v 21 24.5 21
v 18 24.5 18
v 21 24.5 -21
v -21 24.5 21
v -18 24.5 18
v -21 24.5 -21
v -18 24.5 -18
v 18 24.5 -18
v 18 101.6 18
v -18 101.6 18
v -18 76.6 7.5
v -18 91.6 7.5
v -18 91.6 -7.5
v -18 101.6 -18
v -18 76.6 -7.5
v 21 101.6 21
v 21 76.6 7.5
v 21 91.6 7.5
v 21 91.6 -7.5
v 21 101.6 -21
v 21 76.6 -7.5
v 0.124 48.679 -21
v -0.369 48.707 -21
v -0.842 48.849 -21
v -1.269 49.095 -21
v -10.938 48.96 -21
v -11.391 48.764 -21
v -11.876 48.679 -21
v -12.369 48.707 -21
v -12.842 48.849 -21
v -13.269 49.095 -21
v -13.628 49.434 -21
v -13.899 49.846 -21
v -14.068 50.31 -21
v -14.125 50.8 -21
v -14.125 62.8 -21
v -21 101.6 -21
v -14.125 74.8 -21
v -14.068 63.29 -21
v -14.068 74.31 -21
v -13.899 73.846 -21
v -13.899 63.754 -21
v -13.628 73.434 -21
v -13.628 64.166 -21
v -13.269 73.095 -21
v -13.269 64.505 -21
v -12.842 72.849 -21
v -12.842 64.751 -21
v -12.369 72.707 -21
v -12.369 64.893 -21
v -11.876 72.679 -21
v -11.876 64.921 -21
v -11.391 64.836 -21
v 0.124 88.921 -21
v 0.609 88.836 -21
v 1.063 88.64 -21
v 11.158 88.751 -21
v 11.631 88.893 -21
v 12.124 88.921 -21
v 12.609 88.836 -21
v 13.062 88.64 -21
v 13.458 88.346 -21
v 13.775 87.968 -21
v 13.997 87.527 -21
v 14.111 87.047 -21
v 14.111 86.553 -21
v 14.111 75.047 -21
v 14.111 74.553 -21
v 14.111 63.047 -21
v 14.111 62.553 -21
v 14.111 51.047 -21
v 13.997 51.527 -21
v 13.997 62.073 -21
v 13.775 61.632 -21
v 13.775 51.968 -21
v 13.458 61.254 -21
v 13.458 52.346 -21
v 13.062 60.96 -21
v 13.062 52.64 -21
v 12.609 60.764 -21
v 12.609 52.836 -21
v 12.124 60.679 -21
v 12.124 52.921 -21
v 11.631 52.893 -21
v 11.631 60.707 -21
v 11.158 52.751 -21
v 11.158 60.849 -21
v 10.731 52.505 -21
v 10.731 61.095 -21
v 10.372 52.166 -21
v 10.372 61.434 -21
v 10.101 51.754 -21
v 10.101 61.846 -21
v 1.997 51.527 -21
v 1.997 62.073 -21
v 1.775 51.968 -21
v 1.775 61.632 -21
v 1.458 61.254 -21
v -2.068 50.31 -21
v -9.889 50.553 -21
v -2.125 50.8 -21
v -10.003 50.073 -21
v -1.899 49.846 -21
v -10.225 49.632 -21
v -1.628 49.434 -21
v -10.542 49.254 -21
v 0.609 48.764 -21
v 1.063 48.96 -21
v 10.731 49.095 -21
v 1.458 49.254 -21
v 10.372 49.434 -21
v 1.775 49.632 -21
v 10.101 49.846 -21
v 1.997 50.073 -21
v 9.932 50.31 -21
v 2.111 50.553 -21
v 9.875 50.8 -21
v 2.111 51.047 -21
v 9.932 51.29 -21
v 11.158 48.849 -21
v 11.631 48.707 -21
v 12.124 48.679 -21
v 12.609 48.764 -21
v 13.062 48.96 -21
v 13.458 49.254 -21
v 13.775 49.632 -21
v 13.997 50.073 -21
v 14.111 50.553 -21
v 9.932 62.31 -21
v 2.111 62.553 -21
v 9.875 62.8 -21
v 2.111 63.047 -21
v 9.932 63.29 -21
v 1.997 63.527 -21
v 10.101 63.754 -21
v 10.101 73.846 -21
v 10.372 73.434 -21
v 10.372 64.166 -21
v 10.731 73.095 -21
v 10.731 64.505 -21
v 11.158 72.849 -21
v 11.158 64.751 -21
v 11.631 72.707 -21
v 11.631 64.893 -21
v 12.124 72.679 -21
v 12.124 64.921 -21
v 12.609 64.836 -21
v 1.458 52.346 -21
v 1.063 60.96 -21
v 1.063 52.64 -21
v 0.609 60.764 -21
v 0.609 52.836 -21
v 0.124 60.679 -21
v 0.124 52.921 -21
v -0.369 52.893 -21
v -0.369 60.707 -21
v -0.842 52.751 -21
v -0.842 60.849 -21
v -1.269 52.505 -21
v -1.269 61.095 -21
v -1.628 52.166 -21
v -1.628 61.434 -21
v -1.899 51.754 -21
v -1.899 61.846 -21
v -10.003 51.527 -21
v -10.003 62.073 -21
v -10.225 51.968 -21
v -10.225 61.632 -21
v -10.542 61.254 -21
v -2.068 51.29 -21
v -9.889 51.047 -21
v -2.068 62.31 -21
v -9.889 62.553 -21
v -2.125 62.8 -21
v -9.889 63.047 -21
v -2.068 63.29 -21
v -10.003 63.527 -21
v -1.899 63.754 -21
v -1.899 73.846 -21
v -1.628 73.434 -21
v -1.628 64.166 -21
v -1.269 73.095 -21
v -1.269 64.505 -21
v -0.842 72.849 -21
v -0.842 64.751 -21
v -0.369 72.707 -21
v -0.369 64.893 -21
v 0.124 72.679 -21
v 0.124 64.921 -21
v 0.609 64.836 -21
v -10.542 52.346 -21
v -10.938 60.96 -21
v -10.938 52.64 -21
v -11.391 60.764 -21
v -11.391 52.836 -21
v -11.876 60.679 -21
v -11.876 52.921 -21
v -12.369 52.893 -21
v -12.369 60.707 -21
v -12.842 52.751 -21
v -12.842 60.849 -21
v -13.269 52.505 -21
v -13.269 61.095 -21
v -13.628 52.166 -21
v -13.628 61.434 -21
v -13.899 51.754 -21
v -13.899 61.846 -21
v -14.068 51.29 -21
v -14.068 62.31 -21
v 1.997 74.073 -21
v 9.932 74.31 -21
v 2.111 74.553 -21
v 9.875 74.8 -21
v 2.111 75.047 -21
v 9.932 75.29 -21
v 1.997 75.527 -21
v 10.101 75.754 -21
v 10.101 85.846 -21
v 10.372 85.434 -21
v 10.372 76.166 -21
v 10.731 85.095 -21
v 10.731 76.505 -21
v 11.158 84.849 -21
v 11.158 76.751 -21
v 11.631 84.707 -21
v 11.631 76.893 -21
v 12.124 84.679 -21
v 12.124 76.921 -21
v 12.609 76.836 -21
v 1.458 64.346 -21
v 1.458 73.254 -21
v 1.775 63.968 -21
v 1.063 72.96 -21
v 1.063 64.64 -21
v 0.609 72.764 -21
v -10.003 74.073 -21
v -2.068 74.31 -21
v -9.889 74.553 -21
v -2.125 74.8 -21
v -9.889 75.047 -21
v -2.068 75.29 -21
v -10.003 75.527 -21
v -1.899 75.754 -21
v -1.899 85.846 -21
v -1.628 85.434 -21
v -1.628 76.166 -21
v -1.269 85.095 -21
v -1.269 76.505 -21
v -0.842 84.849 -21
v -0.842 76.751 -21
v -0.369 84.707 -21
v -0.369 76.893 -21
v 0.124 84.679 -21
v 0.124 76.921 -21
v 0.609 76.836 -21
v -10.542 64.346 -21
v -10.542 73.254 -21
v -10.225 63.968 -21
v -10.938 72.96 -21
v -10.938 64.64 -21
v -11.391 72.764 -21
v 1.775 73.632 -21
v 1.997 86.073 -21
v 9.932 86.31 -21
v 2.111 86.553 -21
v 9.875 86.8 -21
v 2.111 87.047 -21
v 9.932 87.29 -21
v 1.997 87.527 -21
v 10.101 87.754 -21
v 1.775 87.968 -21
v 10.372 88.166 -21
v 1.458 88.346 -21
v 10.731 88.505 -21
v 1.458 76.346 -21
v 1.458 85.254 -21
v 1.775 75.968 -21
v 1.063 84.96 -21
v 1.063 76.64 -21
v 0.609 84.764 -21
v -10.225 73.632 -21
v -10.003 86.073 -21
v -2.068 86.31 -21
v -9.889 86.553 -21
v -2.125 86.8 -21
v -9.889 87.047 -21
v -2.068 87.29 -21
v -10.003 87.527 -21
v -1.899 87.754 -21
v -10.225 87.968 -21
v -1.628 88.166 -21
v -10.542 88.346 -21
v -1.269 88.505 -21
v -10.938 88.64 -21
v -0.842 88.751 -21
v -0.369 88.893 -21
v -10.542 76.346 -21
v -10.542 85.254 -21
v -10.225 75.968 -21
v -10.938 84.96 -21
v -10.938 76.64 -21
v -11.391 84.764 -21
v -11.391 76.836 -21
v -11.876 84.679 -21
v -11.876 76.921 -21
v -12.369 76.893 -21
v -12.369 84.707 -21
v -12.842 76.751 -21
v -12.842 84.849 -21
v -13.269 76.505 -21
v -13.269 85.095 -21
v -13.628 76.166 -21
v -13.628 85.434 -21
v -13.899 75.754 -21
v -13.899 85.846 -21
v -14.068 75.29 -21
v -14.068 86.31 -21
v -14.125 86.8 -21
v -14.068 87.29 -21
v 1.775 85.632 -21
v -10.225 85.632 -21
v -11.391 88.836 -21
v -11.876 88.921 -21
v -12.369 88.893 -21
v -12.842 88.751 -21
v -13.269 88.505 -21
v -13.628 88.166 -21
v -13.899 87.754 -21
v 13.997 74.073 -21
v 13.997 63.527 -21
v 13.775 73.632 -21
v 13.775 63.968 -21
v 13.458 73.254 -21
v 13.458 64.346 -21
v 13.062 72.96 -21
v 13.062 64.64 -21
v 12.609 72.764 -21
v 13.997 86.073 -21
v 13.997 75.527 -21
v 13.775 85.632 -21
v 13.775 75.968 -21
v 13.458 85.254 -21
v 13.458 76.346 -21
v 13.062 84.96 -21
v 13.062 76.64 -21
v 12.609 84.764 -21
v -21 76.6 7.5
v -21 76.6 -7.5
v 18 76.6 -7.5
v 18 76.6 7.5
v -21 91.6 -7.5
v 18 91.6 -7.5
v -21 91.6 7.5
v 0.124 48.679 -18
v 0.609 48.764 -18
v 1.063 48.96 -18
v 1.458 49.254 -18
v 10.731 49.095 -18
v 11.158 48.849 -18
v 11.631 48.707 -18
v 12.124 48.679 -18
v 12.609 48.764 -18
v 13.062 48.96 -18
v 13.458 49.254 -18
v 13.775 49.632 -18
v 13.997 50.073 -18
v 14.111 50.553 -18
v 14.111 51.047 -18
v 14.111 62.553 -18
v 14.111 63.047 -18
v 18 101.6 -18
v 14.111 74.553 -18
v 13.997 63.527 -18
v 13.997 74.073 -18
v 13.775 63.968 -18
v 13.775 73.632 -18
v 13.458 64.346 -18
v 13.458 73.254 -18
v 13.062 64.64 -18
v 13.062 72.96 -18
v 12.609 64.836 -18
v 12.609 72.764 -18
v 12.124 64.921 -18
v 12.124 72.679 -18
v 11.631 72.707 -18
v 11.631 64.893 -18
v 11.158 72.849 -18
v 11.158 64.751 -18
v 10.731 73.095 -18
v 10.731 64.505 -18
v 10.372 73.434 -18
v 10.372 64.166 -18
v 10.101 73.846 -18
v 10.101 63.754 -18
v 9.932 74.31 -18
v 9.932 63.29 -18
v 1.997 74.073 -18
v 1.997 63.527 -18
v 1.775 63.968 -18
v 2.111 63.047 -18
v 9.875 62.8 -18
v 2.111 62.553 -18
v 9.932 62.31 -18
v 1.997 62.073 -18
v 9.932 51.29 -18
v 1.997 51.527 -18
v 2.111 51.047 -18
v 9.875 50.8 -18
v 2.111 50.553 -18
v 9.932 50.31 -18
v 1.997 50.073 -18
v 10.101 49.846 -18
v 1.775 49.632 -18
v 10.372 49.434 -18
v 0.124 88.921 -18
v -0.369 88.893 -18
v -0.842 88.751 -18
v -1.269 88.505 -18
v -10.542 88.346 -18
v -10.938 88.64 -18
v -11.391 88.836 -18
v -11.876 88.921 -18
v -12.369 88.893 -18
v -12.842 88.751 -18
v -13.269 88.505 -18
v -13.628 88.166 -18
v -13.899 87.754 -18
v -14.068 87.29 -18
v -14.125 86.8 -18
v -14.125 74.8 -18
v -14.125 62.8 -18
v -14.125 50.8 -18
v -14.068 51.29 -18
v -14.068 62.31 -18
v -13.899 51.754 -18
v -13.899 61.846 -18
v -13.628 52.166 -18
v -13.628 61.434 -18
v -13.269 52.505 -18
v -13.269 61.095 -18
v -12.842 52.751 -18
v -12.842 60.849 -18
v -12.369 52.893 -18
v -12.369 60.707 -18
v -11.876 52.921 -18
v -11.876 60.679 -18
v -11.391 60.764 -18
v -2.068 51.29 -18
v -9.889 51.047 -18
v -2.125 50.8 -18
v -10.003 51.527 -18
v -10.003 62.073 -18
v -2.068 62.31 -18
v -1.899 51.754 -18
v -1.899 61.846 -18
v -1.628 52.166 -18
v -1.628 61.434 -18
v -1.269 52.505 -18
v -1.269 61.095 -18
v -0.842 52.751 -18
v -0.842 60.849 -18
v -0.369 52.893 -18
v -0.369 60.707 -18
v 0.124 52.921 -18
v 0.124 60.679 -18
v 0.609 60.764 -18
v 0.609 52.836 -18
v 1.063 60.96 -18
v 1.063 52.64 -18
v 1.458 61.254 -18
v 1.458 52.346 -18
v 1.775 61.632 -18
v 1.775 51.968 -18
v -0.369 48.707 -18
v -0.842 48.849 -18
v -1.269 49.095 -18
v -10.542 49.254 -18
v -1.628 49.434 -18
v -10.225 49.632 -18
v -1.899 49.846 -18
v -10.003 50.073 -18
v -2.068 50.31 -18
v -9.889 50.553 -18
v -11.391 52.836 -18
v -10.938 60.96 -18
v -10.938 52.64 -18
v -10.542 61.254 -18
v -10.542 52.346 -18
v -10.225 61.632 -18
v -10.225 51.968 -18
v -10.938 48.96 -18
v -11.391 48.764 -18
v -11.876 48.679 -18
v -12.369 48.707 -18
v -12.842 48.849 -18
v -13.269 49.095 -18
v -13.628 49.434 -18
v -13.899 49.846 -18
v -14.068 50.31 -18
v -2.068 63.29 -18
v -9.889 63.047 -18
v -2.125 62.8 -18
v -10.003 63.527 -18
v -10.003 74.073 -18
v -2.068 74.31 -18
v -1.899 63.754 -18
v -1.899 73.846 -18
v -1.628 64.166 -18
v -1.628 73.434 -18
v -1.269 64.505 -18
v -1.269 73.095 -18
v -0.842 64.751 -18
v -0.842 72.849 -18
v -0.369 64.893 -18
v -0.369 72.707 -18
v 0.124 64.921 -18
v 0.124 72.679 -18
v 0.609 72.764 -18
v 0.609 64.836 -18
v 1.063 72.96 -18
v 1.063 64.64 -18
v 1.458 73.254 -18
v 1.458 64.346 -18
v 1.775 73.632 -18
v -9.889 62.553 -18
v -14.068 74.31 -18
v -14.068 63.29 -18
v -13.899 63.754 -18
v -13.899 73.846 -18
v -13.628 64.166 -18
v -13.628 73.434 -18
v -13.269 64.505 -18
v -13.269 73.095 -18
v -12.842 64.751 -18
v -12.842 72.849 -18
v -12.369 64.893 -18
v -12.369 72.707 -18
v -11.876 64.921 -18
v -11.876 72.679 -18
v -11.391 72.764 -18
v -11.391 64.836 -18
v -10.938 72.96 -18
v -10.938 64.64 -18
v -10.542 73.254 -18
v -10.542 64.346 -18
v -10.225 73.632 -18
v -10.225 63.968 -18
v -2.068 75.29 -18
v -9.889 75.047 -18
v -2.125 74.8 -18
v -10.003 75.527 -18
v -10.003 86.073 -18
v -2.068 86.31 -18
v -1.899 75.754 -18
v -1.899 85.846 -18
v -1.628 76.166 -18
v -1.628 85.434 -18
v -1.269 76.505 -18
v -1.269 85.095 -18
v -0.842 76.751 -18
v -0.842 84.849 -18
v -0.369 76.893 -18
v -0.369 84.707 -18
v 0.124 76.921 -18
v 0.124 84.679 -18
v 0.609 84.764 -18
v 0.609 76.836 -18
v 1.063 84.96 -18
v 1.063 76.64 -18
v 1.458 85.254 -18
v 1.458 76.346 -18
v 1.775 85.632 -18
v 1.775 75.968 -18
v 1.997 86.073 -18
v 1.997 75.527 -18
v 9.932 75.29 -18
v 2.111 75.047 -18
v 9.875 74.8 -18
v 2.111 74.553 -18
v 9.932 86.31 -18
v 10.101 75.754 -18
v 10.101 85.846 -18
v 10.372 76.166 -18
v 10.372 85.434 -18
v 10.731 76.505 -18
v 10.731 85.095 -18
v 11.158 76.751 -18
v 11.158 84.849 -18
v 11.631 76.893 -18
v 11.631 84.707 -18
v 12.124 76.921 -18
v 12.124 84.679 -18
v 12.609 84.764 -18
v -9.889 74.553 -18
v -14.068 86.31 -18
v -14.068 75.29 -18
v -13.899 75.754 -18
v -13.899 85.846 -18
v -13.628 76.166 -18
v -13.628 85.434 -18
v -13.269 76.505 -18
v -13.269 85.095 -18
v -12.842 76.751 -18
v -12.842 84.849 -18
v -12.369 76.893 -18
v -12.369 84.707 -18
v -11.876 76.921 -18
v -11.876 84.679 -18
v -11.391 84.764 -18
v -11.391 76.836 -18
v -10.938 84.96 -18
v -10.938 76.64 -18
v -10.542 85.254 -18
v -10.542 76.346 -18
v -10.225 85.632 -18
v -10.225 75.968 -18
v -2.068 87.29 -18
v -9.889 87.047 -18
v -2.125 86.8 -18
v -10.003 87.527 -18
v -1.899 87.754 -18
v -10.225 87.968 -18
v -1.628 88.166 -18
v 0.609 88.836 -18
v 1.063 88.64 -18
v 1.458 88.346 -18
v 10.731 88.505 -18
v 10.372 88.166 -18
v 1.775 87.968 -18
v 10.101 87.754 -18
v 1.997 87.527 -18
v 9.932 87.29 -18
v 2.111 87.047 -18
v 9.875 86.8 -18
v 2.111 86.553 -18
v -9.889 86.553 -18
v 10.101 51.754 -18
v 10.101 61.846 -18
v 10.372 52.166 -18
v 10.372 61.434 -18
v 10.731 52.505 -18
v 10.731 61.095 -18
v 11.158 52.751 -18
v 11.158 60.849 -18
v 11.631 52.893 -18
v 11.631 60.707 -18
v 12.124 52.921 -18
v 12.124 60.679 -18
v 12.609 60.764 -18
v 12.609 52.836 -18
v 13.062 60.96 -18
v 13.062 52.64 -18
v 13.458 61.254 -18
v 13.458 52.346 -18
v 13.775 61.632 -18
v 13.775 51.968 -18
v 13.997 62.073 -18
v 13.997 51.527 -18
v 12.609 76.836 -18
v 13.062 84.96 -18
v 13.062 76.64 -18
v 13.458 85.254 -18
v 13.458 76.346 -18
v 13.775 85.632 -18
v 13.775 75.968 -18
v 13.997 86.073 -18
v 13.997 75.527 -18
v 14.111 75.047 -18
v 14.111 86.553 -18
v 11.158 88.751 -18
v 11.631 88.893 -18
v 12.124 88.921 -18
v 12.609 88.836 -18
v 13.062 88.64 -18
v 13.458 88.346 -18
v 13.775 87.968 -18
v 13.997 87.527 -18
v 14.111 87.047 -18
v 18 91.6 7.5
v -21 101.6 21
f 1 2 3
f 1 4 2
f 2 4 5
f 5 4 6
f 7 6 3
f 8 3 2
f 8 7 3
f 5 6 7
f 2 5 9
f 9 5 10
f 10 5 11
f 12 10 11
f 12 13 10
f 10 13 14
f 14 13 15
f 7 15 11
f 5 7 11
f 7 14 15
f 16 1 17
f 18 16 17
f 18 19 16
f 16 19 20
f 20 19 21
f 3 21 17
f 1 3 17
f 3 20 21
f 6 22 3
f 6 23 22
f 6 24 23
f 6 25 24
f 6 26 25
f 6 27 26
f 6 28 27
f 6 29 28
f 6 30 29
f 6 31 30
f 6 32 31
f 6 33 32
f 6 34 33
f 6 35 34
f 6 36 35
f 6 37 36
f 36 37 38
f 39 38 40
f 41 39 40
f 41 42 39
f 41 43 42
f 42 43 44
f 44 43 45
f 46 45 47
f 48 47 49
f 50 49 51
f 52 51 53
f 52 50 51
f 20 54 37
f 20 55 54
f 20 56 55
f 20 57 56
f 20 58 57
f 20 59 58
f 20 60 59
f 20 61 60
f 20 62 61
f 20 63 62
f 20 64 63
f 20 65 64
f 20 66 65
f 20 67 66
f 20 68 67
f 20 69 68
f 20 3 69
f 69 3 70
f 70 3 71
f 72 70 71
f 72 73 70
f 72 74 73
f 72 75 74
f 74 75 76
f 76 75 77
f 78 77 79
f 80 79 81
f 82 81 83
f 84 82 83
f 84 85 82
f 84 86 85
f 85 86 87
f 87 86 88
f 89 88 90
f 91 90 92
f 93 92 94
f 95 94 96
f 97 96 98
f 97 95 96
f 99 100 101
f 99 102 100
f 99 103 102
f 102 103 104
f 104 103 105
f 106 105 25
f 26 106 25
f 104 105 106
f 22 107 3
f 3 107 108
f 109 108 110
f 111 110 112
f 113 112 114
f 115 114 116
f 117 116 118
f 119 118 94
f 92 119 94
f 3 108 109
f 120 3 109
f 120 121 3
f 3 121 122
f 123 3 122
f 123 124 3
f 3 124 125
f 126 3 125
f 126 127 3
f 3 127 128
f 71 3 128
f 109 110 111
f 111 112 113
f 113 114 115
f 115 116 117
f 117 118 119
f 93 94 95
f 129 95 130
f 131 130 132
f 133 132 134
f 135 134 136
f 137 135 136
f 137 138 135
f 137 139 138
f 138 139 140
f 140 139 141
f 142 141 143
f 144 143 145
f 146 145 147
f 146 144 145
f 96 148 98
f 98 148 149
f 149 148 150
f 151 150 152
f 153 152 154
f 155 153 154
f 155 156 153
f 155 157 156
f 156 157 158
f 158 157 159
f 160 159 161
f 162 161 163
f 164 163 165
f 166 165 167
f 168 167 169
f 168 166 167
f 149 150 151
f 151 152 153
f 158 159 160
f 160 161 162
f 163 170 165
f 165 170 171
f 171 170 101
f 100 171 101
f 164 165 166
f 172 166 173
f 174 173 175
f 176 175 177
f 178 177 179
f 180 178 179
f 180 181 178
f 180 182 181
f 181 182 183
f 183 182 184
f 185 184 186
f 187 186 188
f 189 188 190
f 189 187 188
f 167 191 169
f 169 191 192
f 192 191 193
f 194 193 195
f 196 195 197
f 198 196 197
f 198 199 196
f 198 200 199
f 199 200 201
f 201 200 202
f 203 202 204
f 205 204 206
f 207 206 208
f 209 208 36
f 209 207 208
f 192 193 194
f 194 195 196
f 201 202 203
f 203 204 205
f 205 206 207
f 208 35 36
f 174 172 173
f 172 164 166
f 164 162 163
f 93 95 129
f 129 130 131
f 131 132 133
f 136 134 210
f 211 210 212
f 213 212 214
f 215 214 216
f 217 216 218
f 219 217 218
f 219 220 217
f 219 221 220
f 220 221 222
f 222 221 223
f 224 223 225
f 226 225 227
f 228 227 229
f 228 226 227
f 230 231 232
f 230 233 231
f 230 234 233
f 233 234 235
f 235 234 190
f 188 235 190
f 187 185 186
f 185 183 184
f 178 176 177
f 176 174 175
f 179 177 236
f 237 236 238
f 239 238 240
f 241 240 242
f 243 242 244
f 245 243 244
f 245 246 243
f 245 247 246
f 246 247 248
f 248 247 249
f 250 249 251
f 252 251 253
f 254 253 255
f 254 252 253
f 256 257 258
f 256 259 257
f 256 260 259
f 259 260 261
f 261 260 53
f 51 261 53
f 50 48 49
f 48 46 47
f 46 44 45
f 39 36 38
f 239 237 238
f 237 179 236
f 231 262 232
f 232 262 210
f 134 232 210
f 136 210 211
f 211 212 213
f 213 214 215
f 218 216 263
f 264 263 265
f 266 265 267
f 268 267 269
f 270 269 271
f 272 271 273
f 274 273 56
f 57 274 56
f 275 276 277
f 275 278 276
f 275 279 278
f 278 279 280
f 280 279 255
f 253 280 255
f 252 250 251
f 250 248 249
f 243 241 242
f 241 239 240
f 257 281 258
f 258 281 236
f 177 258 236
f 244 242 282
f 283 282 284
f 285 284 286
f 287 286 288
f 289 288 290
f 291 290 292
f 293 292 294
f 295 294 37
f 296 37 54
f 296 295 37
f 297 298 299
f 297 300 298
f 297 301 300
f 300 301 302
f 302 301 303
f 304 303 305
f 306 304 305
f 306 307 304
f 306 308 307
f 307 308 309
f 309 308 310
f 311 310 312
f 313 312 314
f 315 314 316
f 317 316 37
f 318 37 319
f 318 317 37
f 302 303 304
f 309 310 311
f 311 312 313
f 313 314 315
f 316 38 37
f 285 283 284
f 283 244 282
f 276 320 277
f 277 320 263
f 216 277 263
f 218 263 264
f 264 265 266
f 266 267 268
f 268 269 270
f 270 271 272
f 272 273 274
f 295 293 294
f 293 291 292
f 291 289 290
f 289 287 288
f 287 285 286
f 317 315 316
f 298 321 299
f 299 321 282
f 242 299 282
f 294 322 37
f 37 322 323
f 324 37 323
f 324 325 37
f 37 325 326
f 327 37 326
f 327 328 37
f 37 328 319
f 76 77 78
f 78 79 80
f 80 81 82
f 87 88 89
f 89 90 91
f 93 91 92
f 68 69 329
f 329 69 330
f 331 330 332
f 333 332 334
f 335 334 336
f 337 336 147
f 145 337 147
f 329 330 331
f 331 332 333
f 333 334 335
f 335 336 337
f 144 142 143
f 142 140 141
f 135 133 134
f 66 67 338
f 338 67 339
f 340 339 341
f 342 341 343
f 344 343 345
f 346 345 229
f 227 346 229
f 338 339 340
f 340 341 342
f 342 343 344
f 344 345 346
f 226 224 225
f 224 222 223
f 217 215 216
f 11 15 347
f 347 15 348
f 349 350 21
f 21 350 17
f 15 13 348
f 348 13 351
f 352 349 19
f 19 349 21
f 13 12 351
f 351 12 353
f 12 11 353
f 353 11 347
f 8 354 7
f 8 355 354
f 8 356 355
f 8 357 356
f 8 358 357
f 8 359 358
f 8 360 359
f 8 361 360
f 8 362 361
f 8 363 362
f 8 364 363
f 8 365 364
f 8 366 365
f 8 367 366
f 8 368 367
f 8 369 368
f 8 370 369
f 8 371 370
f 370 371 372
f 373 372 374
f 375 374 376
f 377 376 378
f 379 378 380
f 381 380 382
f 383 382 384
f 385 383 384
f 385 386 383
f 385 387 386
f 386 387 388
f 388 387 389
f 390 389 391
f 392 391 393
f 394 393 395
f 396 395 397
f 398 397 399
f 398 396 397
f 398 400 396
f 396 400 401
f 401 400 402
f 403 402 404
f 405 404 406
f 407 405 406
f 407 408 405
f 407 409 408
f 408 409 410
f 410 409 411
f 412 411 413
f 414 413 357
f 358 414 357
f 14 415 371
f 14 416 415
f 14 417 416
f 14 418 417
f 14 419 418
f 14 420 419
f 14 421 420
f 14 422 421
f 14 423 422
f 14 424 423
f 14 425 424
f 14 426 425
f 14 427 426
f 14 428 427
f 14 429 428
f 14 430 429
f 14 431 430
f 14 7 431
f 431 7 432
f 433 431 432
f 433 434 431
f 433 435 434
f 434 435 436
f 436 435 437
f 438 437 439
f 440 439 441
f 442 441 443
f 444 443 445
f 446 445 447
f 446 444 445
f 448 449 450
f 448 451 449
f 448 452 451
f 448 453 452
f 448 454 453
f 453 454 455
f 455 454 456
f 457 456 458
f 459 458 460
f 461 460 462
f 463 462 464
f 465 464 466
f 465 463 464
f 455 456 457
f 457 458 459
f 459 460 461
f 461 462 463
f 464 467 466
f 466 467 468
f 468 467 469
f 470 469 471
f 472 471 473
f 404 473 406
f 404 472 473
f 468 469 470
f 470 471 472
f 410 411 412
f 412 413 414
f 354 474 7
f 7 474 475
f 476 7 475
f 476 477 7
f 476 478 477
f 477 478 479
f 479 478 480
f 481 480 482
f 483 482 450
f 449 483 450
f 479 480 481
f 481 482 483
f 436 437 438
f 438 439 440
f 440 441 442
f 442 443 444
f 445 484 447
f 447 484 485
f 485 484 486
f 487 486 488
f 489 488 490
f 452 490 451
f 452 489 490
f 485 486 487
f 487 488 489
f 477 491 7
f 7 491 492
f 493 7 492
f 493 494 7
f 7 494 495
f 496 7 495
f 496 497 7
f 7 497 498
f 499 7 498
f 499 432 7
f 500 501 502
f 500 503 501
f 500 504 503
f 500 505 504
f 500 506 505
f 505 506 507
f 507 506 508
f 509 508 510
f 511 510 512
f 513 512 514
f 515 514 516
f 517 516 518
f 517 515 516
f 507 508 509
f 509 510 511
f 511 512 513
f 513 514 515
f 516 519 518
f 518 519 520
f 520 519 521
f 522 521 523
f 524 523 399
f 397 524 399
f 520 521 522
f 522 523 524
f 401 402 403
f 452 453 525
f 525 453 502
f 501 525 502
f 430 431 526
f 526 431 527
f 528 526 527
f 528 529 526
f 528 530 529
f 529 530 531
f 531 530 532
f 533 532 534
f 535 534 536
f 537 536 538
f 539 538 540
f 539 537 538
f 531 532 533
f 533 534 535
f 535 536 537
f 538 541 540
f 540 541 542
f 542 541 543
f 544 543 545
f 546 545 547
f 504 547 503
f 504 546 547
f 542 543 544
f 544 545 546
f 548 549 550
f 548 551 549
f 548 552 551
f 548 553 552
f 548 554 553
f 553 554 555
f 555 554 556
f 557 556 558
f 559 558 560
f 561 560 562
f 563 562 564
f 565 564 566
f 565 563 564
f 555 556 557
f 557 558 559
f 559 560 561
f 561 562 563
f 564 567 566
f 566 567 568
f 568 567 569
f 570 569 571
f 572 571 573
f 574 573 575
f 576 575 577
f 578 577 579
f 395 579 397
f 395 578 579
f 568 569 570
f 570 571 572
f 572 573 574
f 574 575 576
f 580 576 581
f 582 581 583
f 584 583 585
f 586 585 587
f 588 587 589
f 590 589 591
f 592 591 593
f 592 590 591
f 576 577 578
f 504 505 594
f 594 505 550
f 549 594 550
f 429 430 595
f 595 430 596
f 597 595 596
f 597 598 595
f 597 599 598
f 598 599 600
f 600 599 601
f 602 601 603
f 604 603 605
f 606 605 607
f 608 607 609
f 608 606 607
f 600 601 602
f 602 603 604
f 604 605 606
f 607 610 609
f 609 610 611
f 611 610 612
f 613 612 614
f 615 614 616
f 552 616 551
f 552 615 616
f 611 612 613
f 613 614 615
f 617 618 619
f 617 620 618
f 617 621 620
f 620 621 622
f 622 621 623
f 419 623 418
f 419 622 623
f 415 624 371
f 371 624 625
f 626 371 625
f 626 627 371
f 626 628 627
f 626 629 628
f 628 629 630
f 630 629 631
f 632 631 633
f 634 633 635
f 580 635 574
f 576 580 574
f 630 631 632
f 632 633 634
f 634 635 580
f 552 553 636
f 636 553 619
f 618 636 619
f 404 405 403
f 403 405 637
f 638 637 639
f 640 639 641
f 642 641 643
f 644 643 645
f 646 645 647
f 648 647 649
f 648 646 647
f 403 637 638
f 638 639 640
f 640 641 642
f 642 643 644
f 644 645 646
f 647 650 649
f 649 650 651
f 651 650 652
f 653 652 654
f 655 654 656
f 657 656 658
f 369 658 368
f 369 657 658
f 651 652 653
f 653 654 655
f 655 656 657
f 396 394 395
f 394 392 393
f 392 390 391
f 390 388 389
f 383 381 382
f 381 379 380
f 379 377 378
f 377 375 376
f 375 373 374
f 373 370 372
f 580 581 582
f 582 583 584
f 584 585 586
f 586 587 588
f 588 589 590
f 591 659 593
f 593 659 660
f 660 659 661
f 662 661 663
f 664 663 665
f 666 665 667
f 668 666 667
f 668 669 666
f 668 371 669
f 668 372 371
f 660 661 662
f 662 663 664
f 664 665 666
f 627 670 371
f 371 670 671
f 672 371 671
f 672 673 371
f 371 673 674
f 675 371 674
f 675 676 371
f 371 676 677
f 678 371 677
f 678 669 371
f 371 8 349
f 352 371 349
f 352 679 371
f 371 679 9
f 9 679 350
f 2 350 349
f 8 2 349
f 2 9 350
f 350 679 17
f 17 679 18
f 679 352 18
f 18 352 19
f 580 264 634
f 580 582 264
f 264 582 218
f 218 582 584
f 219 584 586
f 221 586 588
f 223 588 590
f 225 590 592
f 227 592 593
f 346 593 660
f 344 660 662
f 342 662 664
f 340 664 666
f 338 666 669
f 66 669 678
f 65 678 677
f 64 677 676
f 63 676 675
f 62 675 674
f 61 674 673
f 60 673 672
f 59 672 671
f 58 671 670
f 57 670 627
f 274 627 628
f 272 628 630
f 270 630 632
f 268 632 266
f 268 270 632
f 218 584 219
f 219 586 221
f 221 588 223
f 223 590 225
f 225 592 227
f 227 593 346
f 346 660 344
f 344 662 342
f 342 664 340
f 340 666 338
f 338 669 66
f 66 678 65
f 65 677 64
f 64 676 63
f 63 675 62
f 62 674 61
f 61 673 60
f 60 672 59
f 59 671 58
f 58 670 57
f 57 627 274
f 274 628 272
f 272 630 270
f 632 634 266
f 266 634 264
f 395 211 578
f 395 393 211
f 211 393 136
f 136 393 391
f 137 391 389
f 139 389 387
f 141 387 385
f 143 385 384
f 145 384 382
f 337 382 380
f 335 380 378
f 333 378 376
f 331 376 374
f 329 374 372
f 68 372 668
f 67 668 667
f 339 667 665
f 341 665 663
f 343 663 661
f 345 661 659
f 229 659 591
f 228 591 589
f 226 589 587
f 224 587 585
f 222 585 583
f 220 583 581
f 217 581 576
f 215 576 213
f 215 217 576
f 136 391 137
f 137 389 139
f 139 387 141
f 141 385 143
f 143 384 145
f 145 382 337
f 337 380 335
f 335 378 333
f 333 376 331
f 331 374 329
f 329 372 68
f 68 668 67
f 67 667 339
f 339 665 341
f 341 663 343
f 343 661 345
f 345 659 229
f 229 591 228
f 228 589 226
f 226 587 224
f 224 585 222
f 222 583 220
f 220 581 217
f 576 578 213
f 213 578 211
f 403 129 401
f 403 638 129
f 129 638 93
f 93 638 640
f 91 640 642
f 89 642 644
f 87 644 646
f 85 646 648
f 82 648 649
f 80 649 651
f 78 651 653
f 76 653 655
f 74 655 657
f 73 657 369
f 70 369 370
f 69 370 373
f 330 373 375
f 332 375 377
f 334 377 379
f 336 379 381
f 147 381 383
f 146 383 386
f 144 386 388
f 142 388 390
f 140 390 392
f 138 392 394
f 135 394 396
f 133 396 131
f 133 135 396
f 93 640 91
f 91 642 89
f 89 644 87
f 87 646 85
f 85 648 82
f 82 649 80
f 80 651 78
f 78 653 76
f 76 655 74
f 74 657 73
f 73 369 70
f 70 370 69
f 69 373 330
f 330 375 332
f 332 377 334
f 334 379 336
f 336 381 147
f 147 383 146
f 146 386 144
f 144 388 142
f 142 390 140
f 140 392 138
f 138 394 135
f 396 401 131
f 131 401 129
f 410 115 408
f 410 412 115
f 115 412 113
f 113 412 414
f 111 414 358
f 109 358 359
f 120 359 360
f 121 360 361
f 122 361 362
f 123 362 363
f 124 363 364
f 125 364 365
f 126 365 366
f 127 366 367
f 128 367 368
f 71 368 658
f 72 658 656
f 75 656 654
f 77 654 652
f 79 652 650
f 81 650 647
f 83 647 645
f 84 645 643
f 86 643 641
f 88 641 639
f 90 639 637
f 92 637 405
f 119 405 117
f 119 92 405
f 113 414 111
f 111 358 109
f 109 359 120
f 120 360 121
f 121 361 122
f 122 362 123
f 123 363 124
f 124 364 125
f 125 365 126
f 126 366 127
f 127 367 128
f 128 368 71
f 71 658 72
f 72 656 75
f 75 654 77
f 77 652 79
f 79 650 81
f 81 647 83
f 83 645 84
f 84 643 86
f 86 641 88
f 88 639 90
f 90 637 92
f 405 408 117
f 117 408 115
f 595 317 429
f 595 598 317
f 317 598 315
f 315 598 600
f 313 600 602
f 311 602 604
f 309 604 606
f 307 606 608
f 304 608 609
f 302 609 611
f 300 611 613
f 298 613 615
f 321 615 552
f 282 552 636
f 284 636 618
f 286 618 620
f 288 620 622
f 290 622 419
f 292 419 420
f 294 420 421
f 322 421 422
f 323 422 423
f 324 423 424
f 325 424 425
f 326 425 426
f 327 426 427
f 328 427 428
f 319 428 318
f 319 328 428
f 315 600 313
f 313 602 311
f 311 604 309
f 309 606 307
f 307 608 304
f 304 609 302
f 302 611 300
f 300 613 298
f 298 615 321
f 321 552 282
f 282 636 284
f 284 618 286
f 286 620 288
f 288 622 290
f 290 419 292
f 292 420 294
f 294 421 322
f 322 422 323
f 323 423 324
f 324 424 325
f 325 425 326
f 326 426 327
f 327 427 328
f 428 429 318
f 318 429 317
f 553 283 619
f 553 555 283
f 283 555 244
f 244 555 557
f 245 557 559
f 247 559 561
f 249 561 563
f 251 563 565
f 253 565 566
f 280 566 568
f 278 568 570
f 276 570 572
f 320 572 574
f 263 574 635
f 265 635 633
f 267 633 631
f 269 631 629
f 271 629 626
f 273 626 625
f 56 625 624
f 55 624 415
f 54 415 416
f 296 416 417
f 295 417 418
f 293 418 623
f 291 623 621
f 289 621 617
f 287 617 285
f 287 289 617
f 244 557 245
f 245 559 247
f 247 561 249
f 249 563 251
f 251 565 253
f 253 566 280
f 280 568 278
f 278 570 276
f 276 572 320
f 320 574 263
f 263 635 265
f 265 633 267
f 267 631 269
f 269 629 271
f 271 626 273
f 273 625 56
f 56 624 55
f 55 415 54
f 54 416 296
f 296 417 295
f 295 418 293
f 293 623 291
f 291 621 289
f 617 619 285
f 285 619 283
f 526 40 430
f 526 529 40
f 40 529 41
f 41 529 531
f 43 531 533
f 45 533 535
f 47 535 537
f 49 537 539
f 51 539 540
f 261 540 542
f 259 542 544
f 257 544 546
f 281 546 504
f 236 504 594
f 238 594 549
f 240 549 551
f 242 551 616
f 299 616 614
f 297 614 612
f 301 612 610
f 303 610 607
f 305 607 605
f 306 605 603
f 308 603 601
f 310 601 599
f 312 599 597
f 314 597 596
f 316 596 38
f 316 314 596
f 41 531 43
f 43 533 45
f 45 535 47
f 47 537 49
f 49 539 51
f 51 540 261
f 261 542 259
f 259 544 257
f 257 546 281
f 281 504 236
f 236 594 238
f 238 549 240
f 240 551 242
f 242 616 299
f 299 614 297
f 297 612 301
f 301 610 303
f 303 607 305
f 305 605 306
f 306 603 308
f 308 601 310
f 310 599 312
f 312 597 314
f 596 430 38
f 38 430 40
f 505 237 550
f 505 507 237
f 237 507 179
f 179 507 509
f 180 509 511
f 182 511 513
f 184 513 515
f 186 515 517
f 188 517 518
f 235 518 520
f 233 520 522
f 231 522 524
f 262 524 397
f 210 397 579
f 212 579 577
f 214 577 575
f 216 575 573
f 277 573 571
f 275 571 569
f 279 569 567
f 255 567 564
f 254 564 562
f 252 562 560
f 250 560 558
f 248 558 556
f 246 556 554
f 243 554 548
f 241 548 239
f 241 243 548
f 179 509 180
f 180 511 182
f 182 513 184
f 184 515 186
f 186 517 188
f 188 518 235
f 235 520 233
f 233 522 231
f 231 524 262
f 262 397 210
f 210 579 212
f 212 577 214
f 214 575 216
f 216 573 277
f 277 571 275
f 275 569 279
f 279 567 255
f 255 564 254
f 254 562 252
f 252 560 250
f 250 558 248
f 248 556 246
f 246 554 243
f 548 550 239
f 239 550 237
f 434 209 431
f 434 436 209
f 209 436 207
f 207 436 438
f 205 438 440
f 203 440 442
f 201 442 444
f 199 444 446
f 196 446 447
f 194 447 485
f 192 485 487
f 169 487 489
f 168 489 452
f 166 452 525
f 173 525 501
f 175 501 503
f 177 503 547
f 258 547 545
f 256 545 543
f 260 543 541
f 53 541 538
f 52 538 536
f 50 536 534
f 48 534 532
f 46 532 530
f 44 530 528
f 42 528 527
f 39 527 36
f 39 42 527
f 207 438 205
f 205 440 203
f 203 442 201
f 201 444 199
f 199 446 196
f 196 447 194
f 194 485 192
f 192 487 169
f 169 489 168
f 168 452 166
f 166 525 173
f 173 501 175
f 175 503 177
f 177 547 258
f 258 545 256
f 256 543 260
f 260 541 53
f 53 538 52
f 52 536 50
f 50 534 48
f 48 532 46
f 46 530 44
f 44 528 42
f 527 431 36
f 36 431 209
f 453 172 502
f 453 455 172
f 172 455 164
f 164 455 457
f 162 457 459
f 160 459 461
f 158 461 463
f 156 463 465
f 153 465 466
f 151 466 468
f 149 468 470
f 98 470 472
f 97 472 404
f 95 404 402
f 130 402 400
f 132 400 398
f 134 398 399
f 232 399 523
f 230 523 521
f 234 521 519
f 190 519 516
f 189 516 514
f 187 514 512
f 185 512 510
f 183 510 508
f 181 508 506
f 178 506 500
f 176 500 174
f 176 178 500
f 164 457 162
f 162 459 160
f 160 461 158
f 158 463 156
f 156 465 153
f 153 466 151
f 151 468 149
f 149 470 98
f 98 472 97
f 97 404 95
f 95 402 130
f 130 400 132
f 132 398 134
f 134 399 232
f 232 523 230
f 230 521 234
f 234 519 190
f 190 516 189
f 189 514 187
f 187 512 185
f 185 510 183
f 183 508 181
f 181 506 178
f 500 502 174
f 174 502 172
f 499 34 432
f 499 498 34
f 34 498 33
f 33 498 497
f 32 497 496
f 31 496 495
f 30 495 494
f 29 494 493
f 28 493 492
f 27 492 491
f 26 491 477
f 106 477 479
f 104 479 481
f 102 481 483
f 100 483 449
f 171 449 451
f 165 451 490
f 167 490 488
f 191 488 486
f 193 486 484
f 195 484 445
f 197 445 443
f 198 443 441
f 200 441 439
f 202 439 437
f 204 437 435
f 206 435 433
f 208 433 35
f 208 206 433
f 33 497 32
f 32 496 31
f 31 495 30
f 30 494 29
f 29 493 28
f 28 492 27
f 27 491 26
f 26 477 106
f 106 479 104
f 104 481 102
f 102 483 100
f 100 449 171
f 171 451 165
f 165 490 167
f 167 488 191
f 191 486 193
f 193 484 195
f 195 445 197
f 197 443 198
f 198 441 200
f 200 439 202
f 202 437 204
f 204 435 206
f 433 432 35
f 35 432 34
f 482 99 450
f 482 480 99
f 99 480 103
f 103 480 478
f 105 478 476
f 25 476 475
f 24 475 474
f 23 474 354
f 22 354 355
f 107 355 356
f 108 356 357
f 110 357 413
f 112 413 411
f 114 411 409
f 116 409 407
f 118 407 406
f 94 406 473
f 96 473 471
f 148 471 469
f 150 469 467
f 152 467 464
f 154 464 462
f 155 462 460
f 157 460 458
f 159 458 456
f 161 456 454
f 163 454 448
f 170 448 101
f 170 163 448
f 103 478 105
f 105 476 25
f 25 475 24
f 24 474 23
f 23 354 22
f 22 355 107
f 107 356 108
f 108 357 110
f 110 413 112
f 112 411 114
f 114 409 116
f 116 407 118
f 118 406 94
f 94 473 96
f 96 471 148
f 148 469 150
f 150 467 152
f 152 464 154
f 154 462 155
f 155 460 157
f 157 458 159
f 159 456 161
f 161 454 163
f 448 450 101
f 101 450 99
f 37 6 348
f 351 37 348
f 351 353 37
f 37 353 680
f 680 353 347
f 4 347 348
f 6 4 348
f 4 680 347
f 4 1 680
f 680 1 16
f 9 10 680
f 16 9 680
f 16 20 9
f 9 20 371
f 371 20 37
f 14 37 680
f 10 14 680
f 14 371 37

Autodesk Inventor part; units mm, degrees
ref_plane "YZ Plane" through (0, 0, 0) normal (1, 0, 0) x (0, 1, 0)
ref_plane "XZ Plane" through (0, 0, 0) normal (0, 1, 0) x (-1, 0, 0)
ref_plane "XY Plane" through (0, 0, 0) normal (0, 0, 1) x (1, 0, 0)
sketch "Sketch1" plane through (0, 0, 0) normal (0, 1, 0) x (-1, 0, 0)
  line L0 (-21, 21) -> (21, 21)
  line L1 (21, 21) -> (21, -21)
  line L2 (21, -21) -> (-21, -21)
  line L3 (-21, -21) -> (-21, 21)
  line L4 (-21, 21) -> (21, -21) construction
  line L5 (21, 21) -> (-21, -21) construction
  point P0 (0, 0)
  dimension "d0" = 42
  dimension "d1" = 42
extrude "Extrusion1" add sketch "Sketch1" along normal blind 101.6
sketch "Sketch2" plane through (0, 101.6, 0) normal (0, 1, 0) x (1, 0, 0)
  line L0 (21, 21) -> (-21, 21) projected
  line L1 (0, 21) -> (0, 18)
  line L2 (0, 18) -> (-18, 18)
  line L3 (-18, 18) -> (18, 18)
  line L4 (18, 18) -> (18, 14)
  line L5 (18, 14) -> (-18, 14)
  line L6 (-18, 14) -> (-18, 18)
  line L7 (21, -21) -> (21, 21) projected
  point P0 (0, 0)
  dimension "d4" = 3
  dimension "d5" = 18
  dimension "d6" = 36
  dimension "d7" = 4
extrude "Extrusion2" cut sketch "Sketch2" against normal through all
sketch "Sketch3" plane through (21, 0, -21) normal (0, 0, -1) x (-1, 0, 0)
  line L0 (0, 101.6) -> (42, 101.6) projected
  line L1 (21, 101.6) -> (21, 0)
  line L2 (21, 50.8) -> (39, 50.8)
  line L3 (39, 101.6) -> (39, 0) projected
  circle A0 centre (21, 50.8) radius 2.125
  dimension "d10" = 4.25
extrude "Extrusion3" cut sketch "Sketch3" against normal blind 3 contours A0 L2 L1 | L1 A0 | L2 A0 L1
pattern_linear "Rectangular Pattern1" count 2 spacing 12 along (-1, 0, 0) count 4 spacing 12 along (0, 1, 0) of "Extrusion3"
pattern_linear "Rectangular Pattern2" count 4 spacing 12 along (0, 1, 0) count 2 spacing 12 along (1, 0, 0) of "Extrusion3"
sketch "Sketch4" plane through (-21, 0, -21) normal (-1, 0, 0) x (0, 0, 1)
  line L0 (42, 0) -> (42, 101.6) projected
  line L1 (7, 101.6) -> (7, 0) projected
  line L2 (7, 72.8791) -> (9, 72.8791)
  line L3 (0, 101.6) -> (42, 101.6) projected
  line L4 (19.3629, 101.6) -> (19.3629, 91.6)
  line L5 (21, 91.6) -> (28.5, 91.6)
  line L6 (28.5, 91.6) -> (28.5, 76.6)
  line L7 (28.5, 76.6) -> (13.5, 76.6)
  line L8 (13.5, 76.6) -> (13.5, 91.6)
  line L9 (13.5, 91.6) -> (21, 91.6)
  point P0 (21, 0)
  dimension "d25" = 2
  dimension "d26" = 10
  dimension "d27" = 91.6
  dimension "d30" = 7.5
  dimension "d31" = 15
  dimension "d32" = 15
  dimension "d33" = 15
extrude "Extrusion4" cut sketch "Sketch4" against normal through all
sketch "Sketch5" plane through (21, 0, -21) normal (0, 0, -1) x (-1, 0, 0)
  point P0 (21, 0)
sketch "Sketch6" plane through (0, 0, 0) normal (0, -1, 0) x (1, 0, 0)
  line L0 (-18, -14) -> (18, -14)
  line L1 (18, -14) -> (18, -18)
  line L2 (18, -18) -> (-18, -18)
  line L3 (-18, -18) -> (-18, -14)
  line L4 (-18, -14) -> (18, -18) construction
  line L5 (18, -14) -> (-18, -18) construction
  point P0 (0, 0)
  point P1 (0, -16)
extrude "Extrusion5" add sketch "Sketch6" against normal blind 45
sketch "Sketch7" plane through (0, 101.6, 0) normal (0, 1, 0) x (1, 0, 0)
  line L0 (-18, 18) -> (-18, -18)
  line L1 (-21, -21) -> (21, -21) projected
  line L2 (-18, -18) -> (18, -18)
  line L3 (18, 18) -> (18, 14) projected
  line L4 (18, -18) -> (18, 18)
  line L5 (18, 18) -> (-18, 18)
  point P0 (0, 0)
  dimension "d38" = 36
  dimension "d39" = 36
extrude "Extrusion6" cut sketch "Sketch7" against normal through all
sketch "Sketch8" plane through (21, 0, -21) normal (0, 0, -1) x (-1, 0, 0)
  line L0 (-0.2731, 24.5) -> (42.2731, 24.5)
  line L1 (42.2731, 24.5) -> (42.2731, -24.5)
  line L2 (42.2731, -24.5) -> (-0.2731, -24.5)
  line L3 (-0.2731, -24.5) -> (-0.2731, 24.5)
  line L4 (-0.2731, 24.5) -> (42.2731, -24.5) construction
  line L5 (42.2731, 24.5) -> (-0.2731, -24.5) construction
  point P0 (21, 0)
  dimension "d42" = 49
extrude "Extrusion7" cut sketch "Sketch8" against normal through all
sketch "Sketch9" plane through (21, 101.6, -21) normal (0, 0, -1) x (-1, 0, 0)
  circle A0 centre (33, -26.8) radius 2.125 projected
  circle A1 centre (33, -38.8) radius 2.125 projected
  line L0 (33, -26.8) -> (33, -38.8)
  line L1 (33, -32.8) -> (42, -32.8)
  line L2 (42, -77.1) -> (42, 0) projected
  line L3 (42, -32.8) -> (0, -32.8)
  line L4 (0, -32.8) -> (0, 0)
  line L5 (0, 0) -> (42, 0)
  line L6 (42, 0) -> (42, -32.8)
  circle A2 centre (21, -26.8) radius 2.125 projected
  line L7 (21, -32.8) -> (21, -26.8)
  line L8 (42, -77.1) -> (39, -77.1)
  line L9 (0, -77.1) -> (42, -77.1) projected
  point P0 (21, -101.6)
  dimension "d45" = 42
  dimension "d46" = 32.8
properties part number "CraneArmBase"
